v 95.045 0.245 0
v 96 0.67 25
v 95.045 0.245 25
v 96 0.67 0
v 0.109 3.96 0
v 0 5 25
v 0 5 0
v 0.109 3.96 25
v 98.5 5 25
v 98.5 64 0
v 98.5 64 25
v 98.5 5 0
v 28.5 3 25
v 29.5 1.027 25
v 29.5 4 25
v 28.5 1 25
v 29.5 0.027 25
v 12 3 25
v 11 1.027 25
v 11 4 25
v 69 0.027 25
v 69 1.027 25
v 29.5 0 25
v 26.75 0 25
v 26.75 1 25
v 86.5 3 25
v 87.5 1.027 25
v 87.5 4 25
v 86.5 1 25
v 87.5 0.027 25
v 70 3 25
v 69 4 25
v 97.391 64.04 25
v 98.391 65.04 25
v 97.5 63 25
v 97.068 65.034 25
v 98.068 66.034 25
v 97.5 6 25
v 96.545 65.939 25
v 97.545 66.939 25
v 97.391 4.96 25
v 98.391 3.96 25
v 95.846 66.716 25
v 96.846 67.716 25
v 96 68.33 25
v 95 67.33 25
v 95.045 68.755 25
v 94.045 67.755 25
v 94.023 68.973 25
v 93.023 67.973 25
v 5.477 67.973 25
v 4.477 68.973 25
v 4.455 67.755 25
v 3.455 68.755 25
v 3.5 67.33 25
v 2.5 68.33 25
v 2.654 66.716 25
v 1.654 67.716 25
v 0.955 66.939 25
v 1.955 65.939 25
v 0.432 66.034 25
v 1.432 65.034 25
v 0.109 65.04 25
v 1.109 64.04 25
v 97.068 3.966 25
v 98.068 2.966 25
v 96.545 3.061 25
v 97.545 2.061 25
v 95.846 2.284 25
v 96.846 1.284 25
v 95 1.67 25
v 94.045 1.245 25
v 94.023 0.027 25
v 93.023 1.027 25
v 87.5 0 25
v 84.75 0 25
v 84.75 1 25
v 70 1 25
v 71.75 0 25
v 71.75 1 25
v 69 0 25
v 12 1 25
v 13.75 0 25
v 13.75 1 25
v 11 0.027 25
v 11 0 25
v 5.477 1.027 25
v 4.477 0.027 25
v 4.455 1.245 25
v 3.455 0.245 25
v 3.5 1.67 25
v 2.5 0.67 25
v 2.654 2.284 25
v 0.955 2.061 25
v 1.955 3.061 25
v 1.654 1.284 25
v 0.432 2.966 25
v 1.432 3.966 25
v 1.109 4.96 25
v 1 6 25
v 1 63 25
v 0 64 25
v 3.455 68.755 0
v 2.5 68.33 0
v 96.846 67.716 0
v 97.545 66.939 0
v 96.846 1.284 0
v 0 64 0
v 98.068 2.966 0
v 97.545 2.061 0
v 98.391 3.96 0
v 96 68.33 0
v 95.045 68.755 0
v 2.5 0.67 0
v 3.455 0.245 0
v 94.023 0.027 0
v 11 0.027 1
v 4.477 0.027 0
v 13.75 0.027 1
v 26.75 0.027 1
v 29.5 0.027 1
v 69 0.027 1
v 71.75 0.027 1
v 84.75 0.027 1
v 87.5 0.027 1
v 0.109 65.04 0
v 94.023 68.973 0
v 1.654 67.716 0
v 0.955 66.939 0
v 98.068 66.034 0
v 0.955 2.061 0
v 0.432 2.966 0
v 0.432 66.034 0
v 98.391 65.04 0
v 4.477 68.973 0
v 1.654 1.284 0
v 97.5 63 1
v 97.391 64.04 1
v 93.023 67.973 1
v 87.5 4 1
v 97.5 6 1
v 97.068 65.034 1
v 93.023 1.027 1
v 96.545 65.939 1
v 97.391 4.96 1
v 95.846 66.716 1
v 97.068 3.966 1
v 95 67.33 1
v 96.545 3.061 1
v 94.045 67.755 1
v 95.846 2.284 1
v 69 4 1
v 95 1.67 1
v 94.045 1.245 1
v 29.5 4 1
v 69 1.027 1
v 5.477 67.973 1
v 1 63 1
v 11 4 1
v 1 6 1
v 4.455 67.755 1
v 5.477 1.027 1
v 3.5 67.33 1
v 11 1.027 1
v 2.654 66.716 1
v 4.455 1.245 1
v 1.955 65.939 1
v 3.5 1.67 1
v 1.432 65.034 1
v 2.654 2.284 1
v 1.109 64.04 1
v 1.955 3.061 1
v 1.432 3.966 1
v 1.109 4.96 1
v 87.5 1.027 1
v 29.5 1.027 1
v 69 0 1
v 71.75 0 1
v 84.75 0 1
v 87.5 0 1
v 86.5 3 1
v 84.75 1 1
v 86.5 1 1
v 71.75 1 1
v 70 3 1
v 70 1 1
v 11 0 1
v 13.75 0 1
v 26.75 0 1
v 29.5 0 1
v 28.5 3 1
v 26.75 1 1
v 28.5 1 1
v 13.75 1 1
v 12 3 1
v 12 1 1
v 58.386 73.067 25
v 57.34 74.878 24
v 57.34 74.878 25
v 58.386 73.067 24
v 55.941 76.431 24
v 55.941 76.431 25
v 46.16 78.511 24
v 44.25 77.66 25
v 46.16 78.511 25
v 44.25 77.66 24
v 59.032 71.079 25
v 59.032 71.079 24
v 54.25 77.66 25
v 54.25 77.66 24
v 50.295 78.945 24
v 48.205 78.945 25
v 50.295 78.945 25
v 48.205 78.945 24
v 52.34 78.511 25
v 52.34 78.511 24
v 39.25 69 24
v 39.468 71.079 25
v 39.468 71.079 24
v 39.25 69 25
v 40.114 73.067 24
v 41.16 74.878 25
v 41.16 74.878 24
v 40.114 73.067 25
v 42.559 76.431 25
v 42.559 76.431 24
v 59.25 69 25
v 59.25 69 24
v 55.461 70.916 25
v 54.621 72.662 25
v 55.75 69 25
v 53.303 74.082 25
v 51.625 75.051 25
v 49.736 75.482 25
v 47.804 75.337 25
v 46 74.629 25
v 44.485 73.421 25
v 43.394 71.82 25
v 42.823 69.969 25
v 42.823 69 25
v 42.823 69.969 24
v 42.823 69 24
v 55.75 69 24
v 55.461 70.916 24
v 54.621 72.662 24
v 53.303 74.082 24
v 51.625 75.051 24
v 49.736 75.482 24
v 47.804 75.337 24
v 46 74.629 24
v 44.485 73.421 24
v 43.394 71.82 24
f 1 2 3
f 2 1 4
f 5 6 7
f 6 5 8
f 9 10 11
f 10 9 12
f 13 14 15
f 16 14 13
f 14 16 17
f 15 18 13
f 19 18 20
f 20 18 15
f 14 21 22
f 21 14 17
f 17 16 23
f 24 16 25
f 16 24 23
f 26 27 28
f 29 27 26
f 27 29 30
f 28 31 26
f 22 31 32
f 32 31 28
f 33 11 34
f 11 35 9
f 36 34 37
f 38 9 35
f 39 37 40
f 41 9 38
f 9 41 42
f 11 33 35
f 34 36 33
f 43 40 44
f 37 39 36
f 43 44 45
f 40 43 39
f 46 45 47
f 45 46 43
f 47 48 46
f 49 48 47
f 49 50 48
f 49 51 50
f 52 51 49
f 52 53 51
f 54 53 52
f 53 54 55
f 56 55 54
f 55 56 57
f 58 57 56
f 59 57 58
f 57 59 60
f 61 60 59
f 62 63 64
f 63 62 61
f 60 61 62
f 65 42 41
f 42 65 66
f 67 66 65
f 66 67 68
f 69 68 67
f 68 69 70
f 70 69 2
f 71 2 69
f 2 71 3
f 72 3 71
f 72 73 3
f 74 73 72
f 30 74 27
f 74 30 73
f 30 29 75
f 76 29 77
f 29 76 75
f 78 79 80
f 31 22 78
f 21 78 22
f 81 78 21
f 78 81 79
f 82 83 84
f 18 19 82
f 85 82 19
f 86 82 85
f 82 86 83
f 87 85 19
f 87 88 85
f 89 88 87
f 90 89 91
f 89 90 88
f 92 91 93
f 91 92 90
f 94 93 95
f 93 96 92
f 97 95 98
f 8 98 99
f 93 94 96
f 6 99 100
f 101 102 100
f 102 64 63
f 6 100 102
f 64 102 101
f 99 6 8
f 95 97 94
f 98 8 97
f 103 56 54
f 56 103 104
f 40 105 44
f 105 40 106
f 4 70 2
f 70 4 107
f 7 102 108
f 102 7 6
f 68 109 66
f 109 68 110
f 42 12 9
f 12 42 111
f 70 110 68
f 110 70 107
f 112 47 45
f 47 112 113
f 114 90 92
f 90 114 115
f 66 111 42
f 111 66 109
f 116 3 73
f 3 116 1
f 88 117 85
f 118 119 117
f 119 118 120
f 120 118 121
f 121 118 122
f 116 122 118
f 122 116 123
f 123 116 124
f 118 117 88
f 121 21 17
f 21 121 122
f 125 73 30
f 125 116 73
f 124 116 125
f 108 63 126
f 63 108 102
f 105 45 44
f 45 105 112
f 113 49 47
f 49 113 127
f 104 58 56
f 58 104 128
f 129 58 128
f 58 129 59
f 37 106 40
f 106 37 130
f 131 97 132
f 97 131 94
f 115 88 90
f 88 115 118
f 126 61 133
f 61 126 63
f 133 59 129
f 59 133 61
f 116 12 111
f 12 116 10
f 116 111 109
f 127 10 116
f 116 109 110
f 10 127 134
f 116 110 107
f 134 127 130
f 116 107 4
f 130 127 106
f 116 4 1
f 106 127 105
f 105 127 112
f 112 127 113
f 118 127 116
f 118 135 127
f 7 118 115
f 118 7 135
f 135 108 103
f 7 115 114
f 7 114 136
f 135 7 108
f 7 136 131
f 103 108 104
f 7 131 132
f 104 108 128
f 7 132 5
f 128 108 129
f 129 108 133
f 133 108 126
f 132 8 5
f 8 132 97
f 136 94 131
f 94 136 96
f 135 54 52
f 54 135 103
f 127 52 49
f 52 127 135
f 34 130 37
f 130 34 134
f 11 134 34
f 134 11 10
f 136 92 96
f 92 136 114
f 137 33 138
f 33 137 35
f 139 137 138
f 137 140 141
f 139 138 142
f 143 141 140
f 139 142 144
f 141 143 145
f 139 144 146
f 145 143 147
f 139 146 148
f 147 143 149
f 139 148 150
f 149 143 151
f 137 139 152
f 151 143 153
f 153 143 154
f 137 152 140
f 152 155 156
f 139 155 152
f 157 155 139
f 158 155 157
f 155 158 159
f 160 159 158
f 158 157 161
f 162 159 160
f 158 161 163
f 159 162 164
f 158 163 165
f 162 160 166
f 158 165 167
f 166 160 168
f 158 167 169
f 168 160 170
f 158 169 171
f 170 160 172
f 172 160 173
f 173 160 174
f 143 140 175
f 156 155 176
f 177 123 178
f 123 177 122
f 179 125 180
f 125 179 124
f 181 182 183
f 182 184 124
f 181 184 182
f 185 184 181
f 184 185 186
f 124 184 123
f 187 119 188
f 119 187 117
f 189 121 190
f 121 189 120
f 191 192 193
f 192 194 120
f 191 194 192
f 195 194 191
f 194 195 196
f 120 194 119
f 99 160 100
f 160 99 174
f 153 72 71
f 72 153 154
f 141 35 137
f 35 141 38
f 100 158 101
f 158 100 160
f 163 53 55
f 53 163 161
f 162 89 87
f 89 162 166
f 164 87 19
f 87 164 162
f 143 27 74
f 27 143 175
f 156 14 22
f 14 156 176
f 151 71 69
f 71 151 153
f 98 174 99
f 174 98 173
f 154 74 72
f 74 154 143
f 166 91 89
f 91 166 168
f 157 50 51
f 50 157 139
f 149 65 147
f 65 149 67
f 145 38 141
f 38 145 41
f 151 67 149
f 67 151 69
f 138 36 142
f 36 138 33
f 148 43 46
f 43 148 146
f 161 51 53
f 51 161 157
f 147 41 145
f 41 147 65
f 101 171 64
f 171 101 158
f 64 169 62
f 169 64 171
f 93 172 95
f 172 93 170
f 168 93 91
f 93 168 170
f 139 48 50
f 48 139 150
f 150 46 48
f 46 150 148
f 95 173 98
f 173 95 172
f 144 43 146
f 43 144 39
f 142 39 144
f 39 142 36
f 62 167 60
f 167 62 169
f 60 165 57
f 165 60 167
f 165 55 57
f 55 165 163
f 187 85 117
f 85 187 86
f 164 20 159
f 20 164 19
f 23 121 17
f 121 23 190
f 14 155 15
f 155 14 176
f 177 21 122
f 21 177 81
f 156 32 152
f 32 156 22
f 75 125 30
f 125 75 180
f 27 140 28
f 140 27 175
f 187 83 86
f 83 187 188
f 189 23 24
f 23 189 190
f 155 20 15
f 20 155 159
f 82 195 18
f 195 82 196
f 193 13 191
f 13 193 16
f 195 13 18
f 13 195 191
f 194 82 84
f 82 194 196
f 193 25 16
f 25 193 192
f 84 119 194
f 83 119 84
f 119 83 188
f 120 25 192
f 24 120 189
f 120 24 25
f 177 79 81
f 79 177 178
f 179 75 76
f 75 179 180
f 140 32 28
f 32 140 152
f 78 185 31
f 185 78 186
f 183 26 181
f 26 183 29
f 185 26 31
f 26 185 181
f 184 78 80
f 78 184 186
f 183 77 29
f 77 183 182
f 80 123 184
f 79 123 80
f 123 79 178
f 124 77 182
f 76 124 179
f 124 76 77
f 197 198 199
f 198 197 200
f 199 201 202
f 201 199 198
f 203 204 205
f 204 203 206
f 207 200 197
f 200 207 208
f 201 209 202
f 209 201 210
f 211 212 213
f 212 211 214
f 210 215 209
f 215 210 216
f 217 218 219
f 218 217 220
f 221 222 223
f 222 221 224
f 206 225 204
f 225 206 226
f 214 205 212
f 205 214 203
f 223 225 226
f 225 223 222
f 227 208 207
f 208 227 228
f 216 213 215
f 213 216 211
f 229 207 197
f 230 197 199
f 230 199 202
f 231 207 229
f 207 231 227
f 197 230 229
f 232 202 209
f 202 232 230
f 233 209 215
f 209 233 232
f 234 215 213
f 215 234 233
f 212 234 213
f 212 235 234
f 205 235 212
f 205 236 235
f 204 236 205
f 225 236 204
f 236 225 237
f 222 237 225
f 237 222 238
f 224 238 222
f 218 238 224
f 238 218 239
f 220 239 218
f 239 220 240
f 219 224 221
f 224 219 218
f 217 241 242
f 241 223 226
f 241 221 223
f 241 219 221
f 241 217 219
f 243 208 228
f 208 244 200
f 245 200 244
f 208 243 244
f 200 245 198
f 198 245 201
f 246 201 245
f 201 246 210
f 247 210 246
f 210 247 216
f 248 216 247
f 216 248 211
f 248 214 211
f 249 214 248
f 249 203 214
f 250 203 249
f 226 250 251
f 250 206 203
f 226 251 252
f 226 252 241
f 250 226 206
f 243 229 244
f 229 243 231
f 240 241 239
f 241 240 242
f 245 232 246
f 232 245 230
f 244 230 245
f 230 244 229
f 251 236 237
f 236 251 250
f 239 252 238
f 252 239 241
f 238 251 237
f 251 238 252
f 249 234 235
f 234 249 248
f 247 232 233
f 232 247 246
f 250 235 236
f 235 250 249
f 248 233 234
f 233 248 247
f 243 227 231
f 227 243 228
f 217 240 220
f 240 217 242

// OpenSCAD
// file: ../roundedcube.scad
// Higher definition curves
$fs = 0.01;

module roundedcube(size = [ 1, 1, 1 ], center = false, radius = 0.5,
                   apply_to = "all") {
  // If single value, convert to [x, y, z] vector
  size = (size[0] == undef) ? [ size, size, size ] : size;

  translate_min = radius;
  translate_xmax = size[0] - radius;
  translate_ymax = size[1] - radius;
  translate_zmax = size[2] - radius;

  diameter = radius * 2;

  module build_point(type = "sphere", rotate = [ 0, 0, 0 ]) {
    if (type == "sphere") {
      sphere(r = radius);
    } else if (type == "cylinder") {
      rotate(a = rotate) cylinder(h = diameter, r = radius, center = true);
    }
  }

  obj_translate = (center == false)
                      ? [ 0, 0, 0 ]
                      : [ -(size[0] / 2), -(size[1] / 2), -(size[2] / 2) ];

  translate(v = obj_translate) {
    hull() {
      for (translate_x = [ translate_min, translate_xmax ]) {
        x_at = (translate_x == translate_min) ? "min" : "max";
        for (translate_y = [ translate_min, translate_ymax ]) {
          y_at = (translate_y == translate_min) ? "min" : "max";
          for (translate_z = [ translate_min, translate_zmax ]) {
            z_at = (translate_z == translate_min) ? "min" : "max";

            translate(v =
                          [
                            translate_x, translate_y,
                            translate_z
                          ]) if ((apply_to == "all") ||
                                 (apply_to == "xmin" && x_at == "min") ||
                                 (apply_to == "xmax" && x_at == "max") ||
                                 (apply_to == "ymin" && y_at == "min") ||
                                 (apply_to == "ymax" && y_at == "max") ||
                                 (apply_to == "zmin" && z_at == "min") ||
                                 (apply_to == "zmax" && z_at == "max")) {
              build_point("sphere");
            }
            else {
              rotate =
                  (apply_to == "xmin" || apply_to == "xmax" || apply_to == "x")
                      ? [ 0, 90, 0 ]
                      : ((apply_to == "ymin" || apply_to == "ymax" ||
                          apply_to == "y")
                             ? [ 90, 90, 0 ]
                             : [ 0, 0, 0 ]);
              build_point("cylinder", rotate);
            }
          }
        }
      }
    }
  }
}
// main file
use <../roundedcube.scad>;

width = 98.5;
length = 69;
height = 25;

thickness = 1;

holder_width = 18.5;
holder_open_width = 13;

holder_length = 4;
holder_x_offset = 11;
holder_x_offset_second = width - holder_width - holder_x_offset;

lock_outter = 20;
lock_inner = 13;

corner_radius = 5;
        
module box() {
    difference() {
        roundedcube([width, length, height], false, corner_radius, "z");
        translate([thickness, thickness, thickness]) roundedcube([width - 2 * thickness, length - 2 * thickness,   height - thickness], false, corner_radius, "z");
        translate([holder_x_offset, 0, thickness]) cube([holder_width, holder_length, height]);
        translate([holder_x_offset_second, 0, thickness]) cube([holder_width, holder_length, height]);
    }
}

module holder() {
    difference() {
        cube([holder_width, holder_length, height - thickness]); 
        translate([thickness, thickness, 0]) cube([holder_width - 2 * thickness, holder_length - 2 * thickness, height]);
        translate([(holder_width - holder_open_width) / 2, 0, 0]) cube([holder_open_width, thickness, height]);
    }
}


module lock() {
    difference() {
        cylinder(d=lock_outter, thickness);
        cylinder(d=lock_inner, thickness);
        translate([-lock_outter / 2, -lock_outter, 0]) cube([lock_outter, lock_outter, thickness]);
    }
}

box();
translate([holder_x_offset, 0, thickness]) holder();
translate([holder_x_offset_second, 0, thickness]) holder();
translate([width / 2, length, height - thickness]) lock();
